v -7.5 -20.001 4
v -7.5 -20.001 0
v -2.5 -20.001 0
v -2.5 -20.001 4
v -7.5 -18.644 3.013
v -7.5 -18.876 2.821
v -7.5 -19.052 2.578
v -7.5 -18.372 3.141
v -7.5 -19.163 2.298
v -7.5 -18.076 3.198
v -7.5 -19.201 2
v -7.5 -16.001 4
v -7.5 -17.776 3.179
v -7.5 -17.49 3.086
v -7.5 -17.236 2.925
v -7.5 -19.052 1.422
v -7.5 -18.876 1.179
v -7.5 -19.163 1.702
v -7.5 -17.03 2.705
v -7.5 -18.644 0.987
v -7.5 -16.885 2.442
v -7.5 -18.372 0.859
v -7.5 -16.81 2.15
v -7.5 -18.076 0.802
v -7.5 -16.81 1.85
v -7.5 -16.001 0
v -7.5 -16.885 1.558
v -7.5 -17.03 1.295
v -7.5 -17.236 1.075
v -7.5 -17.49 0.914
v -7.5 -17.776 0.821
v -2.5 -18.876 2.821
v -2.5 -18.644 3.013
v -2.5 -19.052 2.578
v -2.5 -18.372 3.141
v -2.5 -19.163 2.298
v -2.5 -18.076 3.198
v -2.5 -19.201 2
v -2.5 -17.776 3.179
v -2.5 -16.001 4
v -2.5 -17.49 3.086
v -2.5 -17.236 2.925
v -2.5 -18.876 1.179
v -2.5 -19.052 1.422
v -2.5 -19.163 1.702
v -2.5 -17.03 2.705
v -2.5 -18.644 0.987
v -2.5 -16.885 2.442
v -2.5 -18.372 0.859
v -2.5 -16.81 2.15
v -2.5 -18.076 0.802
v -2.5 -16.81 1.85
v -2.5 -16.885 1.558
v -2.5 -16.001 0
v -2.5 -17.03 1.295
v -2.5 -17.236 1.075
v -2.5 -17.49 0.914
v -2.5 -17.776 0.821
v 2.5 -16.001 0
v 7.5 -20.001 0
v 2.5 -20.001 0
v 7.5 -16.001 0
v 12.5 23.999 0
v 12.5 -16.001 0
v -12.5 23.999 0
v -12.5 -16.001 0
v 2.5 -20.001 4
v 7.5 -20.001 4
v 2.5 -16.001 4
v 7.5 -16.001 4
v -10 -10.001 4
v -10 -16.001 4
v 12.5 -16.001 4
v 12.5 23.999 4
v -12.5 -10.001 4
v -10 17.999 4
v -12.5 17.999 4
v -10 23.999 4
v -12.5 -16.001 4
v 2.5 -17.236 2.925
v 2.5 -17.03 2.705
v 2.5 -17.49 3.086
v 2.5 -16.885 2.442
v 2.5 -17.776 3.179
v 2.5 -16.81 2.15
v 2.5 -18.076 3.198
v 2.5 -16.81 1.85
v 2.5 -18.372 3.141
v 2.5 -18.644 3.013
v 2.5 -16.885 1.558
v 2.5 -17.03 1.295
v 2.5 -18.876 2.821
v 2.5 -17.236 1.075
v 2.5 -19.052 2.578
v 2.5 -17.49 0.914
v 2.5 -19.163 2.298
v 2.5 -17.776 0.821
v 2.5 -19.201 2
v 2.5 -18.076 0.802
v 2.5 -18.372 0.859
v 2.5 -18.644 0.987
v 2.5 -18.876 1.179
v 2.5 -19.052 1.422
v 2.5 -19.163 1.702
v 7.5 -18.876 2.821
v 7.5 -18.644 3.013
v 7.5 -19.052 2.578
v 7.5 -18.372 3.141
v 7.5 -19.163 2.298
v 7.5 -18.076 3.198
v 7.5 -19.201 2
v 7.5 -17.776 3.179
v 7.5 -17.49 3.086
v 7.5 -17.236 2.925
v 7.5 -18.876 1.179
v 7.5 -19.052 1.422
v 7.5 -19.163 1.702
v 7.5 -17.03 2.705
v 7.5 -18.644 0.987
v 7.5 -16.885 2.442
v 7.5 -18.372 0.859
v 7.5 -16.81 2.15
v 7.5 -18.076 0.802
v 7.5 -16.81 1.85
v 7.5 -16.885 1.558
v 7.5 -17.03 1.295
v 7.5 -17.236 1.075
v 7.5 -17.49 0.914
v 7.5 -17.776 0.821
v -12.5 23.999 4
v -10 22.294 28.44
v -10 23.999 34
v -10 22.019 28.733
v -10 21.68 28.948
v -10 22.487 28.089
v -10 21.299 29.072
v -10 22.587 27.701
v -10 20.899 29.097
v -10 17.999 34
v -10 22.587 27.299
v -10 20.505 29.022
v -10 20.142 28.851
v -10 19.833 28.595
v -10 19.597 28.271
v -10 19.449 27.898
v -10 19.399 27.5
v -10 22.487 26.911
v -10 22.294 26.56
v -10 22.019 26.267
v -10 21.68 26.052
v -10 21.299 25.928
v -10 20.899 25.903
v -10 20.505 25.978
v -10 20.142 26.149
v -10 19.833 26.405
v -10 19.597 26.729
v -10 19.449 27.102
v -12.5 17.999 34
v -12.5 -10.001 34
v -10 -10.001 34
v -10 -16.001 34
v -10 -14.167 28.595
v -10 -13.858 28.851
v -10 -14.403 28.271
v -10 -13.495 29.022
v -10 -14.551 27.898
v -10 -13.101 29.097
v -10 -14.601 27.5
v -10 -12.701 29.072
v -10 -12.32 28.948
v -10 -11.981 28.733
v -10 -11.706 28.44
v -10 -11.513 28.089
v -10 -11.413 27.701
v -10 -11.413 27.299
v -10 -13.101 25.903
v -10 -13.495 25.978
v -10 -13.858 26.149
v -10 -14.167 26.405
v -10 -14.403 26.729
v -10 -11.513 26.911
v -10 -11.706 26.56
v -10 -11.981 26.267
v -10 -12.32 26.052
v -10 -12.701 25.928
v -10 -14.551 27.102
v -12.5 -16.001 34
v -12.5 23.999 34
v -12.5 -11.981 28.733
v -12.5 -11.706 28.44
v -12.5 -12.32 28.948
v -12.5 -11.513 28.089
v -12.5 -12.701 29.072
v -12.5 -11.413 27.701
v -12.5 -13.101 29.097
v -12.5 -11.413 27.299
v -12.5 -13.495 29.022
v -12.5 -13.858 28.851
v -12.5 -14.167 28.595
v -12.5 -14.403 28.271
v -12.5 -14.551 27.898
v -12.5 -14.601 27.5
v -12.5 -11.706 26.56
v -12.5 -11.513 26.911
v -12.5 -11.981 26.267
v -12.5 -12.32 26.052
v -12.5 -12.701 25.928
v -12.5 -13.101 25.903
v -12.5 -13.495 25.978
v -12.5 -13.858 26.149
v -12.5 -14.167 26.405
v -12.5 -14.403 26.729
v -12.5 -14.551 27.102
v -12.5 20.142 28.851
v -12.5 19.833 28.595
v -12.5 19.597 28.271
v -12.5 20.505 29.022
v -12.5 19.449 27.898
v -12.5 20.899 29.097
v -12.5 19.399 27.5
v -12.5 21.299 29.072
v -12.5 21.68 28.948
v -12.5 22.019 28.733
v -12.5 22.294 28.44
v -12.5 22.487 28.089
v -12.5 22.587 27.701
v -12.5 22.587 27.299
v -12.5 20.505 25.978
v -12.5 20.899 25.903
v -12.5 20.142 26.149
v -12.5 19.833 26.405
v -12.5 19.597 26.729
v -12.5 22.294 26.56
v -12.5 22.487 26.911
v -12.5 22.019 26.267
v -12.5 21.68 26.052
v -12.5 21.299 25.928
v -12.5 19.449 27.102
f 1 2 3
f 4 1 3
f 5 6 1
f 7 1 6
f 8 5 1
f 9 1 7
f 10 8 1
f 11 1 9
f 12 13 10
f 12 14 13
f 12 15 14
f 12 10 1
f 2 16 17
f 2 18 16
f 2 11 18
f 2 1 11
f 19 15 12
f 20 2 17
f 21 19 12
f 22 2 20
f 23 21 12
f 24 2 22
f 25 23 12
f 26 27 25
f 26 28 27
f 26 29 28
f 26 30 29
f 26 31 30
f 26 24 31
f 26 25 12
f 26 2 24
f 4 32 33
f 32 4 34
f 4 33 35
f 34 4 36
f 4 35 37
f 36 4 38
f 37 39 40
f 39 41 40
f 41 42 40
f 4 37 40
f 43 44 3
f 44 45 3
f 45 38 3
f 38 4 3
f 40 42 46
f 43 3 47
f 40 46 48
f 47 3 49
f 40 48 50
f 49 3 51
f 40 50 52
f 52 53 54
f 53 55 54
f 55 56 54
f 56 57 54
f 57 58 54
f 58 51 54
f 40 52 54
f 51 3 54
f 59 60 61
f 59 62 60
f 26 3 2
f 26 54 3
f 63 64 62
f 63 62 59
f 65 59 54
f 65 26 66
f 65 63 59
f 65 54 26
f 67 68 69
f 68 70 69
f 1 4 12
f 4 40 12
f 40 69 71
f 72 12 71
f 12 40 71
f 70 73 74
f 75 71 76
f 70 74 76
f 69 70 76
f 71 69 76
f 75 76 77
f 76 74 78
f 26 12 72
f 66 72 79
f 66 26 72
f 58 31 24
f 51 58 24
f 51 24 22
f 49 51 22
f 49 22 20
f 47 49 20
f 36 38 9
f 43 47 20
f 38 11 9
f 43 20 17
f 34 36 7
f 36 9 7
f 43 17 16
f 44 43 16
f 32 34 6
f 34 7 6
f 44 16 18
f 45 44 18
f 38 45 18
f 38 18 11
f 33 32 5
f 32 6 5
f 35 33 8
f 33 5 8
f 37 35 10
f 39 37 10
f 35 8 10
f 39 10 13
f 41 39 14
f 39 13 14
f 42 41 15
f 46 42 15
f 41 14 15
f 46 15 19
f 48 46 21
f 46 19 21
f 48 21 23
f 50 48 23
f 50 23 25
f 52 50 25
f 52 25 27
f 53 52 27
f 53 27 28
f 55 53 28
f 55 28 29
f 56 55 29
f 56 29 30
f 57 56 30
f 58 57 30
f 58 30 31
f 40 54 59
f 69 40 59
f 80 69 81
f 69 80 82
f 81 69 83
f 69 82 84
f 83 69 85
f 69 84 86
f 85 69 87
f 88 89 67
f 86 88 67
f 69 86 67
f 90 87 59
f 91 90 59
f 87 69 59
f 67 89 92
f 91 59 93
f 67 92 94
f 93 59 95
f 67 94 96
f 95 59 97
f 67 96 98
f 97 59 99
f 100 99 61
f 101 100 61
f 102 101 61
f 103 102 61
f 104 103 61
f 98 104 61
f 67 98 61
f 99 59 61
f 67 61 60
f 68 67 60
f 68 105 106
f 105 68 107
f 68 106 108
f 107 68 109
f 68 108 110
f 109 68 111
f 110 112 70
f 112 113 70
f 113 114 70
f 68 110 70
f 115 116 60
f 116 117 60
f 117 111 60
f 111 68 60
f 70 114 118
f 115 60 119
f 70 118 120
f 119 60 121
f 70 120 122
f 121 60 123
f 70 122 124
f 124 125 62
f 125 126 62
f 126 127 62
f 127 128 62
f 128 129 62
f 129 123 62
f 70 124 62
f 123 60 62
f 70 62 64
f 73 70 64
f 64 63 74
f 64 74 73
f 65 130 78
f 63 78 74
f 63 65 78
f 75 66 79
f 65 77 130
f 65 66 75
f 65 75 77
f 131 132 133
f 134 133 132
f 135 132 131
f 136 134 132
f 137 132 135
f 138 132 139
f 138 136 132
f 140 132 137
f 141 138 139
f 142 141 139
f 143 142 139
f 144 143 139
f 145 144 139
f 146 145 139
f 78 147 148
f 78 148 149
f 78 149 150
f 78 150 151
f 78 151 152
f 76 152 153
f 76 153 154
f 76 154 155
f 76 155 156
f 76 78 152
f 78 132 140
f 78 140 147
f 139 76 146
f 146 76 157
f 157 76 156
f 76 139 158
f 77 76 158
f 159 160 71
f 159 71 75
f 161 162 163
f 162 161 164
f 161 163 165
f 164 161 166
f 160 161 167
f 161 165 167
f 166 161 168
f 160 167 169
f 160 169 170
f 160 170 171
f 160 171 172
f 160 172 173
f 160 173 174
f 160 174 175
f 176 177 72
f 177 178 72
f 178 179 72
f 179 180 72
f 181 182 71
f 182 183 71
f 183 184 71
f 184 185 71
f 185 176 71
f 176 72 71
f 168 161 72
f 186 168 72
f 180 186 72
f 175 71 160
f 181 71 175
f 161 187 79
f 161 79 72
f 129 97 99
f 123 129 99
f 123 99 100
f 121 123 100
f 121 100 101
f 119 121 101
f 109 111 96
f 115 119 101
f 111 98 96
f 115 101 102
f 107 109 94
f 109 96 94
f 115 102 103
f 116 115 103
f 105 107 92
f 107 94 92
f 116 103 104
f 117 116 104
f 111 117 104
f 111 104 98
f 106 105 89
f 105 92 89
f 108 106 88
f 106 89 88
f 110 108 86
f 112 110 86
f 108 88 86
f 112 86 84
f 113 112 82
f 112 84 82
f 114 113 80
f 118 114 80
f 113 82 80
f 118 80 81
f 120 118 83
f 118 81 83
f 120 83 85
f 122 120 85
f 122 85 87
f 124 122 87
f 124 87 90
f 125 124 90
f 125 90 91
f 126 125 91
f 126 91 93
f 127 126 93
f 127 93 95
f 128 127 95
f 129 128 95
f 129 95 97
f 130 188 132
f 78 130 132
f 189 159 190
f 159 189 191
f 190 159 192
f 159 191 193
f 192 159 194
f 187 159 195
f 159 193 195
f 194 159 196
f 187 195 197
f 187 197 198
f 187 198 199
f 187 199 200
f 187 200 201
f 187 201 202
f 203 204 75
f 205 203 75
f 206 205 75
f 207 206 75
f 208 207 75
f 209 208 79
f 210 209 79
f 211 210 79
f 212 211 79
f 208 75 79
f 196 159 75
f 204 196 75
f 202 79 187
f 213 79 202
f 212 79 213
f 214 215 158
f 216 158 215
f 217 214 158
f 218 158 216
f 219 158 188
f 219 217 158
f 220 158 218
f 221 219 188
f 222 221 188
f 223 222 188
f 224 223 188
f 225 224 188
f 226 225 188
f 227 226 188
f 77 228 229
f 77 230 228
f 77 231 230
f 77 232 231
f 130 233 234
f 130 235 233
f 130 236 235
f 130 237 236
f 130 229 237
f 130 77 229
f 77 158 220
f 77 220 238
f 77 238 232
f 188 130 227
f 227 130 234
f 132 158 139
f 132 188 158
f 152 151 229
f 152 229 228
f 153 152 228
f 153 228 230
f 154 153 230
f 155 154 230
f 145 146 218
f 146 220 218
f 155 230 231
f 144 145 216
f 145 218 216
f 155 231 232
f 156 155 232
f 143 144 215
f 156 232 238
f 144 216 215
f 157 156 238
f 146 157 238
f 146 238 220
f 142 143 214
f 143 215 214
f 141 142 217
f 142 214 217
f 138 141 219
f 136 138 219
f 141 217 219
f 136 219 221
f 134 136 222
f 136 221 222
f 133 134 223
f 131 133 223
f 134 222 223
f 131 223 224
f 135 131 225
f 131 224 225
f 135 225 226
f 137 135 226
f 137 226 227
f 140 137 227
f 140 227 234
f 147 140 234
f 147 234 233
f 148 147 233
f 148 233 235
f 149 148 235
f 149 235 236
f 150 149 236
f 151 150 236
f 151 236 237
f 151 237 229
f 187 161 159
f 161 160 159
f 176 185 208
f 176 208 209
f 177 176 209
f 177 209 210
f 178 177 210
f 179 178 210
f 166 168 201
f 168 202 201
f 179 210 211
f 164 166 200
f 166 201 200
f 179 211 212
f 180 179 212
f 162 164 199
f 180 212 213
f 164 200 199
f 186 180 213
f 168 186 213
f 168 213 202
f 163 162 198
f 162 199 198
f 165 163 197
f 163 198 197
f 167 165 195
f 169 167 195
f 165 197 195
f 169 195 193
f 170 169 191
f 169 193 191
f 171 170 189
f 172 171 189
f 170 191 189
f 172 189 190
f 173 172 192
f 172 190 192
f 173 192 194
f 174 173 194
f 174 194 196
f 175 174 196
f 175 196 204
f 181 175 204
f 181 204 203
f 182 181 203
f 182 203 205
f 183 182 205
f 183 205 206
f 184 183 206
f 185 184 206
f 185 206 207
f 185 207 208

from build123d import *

# Parameters (mm, degrees)
PAD_DEPTH     = 4
SKETCH001_W   = 2.5
SKETCH001_H   = 6
PAD001_DEPTH  = 30
SKETCH002_R   = 1.2
SKETCH002_R_2 = 1.6
POCKET_DEPTH  = 25.001


with BuildPart() as part:
    # Sketch → Pad (new body)
    with BuildSketch(Plane.XY):
        Polygon((-7.5, -20.000802), (-2.5, -20.000802), (-2.5, -16.000802), (2.5, -16.000802), (2.5, -20.000802), (7.5, -20.000802), (7.5, -16.000802), (12.5, -16.000802), (12.5, 23.999198), (-12.5, 23.999198), (-12.5, -16.000802), (-7.5, -16.000802), align=None)
    extrude(amount=PAD_DEPTH)

    # Sketch001 → Pad001 (new body)
    with BuildSketch(Plane.XY.offset(4)):
        with Locations((-11.25, -13.000802)):
            Rectangle(SKETCH001_W, SKETCH001_H)
        with Locations((-11.25, 20.999198)):
            Rectangle(SKETCH001_W, SKETCH001_H)
    extrude(amount=PAD001_DEPTH)

    # Sketch002 → Pocket (cut, through all)
    with BuildSketch(Plane(origin=(-12.5, 0, 0), x_dir=(0, -1, 0), z_dir=(-1, 0, 0))):
        with Locations((18.000802, 2)):
            Circle(SKETCH002_R)
        with Locations((13.000802, 27.5)):
            Circle(SKETCH002_R_2)
        with Locations((-20.999198, 27.5)):
            Circle(SKETCH002_R_2)
    extrude(amount=-POCKET_DEPTH, mode=Mode.SUBTRACT)


solid = part.part
